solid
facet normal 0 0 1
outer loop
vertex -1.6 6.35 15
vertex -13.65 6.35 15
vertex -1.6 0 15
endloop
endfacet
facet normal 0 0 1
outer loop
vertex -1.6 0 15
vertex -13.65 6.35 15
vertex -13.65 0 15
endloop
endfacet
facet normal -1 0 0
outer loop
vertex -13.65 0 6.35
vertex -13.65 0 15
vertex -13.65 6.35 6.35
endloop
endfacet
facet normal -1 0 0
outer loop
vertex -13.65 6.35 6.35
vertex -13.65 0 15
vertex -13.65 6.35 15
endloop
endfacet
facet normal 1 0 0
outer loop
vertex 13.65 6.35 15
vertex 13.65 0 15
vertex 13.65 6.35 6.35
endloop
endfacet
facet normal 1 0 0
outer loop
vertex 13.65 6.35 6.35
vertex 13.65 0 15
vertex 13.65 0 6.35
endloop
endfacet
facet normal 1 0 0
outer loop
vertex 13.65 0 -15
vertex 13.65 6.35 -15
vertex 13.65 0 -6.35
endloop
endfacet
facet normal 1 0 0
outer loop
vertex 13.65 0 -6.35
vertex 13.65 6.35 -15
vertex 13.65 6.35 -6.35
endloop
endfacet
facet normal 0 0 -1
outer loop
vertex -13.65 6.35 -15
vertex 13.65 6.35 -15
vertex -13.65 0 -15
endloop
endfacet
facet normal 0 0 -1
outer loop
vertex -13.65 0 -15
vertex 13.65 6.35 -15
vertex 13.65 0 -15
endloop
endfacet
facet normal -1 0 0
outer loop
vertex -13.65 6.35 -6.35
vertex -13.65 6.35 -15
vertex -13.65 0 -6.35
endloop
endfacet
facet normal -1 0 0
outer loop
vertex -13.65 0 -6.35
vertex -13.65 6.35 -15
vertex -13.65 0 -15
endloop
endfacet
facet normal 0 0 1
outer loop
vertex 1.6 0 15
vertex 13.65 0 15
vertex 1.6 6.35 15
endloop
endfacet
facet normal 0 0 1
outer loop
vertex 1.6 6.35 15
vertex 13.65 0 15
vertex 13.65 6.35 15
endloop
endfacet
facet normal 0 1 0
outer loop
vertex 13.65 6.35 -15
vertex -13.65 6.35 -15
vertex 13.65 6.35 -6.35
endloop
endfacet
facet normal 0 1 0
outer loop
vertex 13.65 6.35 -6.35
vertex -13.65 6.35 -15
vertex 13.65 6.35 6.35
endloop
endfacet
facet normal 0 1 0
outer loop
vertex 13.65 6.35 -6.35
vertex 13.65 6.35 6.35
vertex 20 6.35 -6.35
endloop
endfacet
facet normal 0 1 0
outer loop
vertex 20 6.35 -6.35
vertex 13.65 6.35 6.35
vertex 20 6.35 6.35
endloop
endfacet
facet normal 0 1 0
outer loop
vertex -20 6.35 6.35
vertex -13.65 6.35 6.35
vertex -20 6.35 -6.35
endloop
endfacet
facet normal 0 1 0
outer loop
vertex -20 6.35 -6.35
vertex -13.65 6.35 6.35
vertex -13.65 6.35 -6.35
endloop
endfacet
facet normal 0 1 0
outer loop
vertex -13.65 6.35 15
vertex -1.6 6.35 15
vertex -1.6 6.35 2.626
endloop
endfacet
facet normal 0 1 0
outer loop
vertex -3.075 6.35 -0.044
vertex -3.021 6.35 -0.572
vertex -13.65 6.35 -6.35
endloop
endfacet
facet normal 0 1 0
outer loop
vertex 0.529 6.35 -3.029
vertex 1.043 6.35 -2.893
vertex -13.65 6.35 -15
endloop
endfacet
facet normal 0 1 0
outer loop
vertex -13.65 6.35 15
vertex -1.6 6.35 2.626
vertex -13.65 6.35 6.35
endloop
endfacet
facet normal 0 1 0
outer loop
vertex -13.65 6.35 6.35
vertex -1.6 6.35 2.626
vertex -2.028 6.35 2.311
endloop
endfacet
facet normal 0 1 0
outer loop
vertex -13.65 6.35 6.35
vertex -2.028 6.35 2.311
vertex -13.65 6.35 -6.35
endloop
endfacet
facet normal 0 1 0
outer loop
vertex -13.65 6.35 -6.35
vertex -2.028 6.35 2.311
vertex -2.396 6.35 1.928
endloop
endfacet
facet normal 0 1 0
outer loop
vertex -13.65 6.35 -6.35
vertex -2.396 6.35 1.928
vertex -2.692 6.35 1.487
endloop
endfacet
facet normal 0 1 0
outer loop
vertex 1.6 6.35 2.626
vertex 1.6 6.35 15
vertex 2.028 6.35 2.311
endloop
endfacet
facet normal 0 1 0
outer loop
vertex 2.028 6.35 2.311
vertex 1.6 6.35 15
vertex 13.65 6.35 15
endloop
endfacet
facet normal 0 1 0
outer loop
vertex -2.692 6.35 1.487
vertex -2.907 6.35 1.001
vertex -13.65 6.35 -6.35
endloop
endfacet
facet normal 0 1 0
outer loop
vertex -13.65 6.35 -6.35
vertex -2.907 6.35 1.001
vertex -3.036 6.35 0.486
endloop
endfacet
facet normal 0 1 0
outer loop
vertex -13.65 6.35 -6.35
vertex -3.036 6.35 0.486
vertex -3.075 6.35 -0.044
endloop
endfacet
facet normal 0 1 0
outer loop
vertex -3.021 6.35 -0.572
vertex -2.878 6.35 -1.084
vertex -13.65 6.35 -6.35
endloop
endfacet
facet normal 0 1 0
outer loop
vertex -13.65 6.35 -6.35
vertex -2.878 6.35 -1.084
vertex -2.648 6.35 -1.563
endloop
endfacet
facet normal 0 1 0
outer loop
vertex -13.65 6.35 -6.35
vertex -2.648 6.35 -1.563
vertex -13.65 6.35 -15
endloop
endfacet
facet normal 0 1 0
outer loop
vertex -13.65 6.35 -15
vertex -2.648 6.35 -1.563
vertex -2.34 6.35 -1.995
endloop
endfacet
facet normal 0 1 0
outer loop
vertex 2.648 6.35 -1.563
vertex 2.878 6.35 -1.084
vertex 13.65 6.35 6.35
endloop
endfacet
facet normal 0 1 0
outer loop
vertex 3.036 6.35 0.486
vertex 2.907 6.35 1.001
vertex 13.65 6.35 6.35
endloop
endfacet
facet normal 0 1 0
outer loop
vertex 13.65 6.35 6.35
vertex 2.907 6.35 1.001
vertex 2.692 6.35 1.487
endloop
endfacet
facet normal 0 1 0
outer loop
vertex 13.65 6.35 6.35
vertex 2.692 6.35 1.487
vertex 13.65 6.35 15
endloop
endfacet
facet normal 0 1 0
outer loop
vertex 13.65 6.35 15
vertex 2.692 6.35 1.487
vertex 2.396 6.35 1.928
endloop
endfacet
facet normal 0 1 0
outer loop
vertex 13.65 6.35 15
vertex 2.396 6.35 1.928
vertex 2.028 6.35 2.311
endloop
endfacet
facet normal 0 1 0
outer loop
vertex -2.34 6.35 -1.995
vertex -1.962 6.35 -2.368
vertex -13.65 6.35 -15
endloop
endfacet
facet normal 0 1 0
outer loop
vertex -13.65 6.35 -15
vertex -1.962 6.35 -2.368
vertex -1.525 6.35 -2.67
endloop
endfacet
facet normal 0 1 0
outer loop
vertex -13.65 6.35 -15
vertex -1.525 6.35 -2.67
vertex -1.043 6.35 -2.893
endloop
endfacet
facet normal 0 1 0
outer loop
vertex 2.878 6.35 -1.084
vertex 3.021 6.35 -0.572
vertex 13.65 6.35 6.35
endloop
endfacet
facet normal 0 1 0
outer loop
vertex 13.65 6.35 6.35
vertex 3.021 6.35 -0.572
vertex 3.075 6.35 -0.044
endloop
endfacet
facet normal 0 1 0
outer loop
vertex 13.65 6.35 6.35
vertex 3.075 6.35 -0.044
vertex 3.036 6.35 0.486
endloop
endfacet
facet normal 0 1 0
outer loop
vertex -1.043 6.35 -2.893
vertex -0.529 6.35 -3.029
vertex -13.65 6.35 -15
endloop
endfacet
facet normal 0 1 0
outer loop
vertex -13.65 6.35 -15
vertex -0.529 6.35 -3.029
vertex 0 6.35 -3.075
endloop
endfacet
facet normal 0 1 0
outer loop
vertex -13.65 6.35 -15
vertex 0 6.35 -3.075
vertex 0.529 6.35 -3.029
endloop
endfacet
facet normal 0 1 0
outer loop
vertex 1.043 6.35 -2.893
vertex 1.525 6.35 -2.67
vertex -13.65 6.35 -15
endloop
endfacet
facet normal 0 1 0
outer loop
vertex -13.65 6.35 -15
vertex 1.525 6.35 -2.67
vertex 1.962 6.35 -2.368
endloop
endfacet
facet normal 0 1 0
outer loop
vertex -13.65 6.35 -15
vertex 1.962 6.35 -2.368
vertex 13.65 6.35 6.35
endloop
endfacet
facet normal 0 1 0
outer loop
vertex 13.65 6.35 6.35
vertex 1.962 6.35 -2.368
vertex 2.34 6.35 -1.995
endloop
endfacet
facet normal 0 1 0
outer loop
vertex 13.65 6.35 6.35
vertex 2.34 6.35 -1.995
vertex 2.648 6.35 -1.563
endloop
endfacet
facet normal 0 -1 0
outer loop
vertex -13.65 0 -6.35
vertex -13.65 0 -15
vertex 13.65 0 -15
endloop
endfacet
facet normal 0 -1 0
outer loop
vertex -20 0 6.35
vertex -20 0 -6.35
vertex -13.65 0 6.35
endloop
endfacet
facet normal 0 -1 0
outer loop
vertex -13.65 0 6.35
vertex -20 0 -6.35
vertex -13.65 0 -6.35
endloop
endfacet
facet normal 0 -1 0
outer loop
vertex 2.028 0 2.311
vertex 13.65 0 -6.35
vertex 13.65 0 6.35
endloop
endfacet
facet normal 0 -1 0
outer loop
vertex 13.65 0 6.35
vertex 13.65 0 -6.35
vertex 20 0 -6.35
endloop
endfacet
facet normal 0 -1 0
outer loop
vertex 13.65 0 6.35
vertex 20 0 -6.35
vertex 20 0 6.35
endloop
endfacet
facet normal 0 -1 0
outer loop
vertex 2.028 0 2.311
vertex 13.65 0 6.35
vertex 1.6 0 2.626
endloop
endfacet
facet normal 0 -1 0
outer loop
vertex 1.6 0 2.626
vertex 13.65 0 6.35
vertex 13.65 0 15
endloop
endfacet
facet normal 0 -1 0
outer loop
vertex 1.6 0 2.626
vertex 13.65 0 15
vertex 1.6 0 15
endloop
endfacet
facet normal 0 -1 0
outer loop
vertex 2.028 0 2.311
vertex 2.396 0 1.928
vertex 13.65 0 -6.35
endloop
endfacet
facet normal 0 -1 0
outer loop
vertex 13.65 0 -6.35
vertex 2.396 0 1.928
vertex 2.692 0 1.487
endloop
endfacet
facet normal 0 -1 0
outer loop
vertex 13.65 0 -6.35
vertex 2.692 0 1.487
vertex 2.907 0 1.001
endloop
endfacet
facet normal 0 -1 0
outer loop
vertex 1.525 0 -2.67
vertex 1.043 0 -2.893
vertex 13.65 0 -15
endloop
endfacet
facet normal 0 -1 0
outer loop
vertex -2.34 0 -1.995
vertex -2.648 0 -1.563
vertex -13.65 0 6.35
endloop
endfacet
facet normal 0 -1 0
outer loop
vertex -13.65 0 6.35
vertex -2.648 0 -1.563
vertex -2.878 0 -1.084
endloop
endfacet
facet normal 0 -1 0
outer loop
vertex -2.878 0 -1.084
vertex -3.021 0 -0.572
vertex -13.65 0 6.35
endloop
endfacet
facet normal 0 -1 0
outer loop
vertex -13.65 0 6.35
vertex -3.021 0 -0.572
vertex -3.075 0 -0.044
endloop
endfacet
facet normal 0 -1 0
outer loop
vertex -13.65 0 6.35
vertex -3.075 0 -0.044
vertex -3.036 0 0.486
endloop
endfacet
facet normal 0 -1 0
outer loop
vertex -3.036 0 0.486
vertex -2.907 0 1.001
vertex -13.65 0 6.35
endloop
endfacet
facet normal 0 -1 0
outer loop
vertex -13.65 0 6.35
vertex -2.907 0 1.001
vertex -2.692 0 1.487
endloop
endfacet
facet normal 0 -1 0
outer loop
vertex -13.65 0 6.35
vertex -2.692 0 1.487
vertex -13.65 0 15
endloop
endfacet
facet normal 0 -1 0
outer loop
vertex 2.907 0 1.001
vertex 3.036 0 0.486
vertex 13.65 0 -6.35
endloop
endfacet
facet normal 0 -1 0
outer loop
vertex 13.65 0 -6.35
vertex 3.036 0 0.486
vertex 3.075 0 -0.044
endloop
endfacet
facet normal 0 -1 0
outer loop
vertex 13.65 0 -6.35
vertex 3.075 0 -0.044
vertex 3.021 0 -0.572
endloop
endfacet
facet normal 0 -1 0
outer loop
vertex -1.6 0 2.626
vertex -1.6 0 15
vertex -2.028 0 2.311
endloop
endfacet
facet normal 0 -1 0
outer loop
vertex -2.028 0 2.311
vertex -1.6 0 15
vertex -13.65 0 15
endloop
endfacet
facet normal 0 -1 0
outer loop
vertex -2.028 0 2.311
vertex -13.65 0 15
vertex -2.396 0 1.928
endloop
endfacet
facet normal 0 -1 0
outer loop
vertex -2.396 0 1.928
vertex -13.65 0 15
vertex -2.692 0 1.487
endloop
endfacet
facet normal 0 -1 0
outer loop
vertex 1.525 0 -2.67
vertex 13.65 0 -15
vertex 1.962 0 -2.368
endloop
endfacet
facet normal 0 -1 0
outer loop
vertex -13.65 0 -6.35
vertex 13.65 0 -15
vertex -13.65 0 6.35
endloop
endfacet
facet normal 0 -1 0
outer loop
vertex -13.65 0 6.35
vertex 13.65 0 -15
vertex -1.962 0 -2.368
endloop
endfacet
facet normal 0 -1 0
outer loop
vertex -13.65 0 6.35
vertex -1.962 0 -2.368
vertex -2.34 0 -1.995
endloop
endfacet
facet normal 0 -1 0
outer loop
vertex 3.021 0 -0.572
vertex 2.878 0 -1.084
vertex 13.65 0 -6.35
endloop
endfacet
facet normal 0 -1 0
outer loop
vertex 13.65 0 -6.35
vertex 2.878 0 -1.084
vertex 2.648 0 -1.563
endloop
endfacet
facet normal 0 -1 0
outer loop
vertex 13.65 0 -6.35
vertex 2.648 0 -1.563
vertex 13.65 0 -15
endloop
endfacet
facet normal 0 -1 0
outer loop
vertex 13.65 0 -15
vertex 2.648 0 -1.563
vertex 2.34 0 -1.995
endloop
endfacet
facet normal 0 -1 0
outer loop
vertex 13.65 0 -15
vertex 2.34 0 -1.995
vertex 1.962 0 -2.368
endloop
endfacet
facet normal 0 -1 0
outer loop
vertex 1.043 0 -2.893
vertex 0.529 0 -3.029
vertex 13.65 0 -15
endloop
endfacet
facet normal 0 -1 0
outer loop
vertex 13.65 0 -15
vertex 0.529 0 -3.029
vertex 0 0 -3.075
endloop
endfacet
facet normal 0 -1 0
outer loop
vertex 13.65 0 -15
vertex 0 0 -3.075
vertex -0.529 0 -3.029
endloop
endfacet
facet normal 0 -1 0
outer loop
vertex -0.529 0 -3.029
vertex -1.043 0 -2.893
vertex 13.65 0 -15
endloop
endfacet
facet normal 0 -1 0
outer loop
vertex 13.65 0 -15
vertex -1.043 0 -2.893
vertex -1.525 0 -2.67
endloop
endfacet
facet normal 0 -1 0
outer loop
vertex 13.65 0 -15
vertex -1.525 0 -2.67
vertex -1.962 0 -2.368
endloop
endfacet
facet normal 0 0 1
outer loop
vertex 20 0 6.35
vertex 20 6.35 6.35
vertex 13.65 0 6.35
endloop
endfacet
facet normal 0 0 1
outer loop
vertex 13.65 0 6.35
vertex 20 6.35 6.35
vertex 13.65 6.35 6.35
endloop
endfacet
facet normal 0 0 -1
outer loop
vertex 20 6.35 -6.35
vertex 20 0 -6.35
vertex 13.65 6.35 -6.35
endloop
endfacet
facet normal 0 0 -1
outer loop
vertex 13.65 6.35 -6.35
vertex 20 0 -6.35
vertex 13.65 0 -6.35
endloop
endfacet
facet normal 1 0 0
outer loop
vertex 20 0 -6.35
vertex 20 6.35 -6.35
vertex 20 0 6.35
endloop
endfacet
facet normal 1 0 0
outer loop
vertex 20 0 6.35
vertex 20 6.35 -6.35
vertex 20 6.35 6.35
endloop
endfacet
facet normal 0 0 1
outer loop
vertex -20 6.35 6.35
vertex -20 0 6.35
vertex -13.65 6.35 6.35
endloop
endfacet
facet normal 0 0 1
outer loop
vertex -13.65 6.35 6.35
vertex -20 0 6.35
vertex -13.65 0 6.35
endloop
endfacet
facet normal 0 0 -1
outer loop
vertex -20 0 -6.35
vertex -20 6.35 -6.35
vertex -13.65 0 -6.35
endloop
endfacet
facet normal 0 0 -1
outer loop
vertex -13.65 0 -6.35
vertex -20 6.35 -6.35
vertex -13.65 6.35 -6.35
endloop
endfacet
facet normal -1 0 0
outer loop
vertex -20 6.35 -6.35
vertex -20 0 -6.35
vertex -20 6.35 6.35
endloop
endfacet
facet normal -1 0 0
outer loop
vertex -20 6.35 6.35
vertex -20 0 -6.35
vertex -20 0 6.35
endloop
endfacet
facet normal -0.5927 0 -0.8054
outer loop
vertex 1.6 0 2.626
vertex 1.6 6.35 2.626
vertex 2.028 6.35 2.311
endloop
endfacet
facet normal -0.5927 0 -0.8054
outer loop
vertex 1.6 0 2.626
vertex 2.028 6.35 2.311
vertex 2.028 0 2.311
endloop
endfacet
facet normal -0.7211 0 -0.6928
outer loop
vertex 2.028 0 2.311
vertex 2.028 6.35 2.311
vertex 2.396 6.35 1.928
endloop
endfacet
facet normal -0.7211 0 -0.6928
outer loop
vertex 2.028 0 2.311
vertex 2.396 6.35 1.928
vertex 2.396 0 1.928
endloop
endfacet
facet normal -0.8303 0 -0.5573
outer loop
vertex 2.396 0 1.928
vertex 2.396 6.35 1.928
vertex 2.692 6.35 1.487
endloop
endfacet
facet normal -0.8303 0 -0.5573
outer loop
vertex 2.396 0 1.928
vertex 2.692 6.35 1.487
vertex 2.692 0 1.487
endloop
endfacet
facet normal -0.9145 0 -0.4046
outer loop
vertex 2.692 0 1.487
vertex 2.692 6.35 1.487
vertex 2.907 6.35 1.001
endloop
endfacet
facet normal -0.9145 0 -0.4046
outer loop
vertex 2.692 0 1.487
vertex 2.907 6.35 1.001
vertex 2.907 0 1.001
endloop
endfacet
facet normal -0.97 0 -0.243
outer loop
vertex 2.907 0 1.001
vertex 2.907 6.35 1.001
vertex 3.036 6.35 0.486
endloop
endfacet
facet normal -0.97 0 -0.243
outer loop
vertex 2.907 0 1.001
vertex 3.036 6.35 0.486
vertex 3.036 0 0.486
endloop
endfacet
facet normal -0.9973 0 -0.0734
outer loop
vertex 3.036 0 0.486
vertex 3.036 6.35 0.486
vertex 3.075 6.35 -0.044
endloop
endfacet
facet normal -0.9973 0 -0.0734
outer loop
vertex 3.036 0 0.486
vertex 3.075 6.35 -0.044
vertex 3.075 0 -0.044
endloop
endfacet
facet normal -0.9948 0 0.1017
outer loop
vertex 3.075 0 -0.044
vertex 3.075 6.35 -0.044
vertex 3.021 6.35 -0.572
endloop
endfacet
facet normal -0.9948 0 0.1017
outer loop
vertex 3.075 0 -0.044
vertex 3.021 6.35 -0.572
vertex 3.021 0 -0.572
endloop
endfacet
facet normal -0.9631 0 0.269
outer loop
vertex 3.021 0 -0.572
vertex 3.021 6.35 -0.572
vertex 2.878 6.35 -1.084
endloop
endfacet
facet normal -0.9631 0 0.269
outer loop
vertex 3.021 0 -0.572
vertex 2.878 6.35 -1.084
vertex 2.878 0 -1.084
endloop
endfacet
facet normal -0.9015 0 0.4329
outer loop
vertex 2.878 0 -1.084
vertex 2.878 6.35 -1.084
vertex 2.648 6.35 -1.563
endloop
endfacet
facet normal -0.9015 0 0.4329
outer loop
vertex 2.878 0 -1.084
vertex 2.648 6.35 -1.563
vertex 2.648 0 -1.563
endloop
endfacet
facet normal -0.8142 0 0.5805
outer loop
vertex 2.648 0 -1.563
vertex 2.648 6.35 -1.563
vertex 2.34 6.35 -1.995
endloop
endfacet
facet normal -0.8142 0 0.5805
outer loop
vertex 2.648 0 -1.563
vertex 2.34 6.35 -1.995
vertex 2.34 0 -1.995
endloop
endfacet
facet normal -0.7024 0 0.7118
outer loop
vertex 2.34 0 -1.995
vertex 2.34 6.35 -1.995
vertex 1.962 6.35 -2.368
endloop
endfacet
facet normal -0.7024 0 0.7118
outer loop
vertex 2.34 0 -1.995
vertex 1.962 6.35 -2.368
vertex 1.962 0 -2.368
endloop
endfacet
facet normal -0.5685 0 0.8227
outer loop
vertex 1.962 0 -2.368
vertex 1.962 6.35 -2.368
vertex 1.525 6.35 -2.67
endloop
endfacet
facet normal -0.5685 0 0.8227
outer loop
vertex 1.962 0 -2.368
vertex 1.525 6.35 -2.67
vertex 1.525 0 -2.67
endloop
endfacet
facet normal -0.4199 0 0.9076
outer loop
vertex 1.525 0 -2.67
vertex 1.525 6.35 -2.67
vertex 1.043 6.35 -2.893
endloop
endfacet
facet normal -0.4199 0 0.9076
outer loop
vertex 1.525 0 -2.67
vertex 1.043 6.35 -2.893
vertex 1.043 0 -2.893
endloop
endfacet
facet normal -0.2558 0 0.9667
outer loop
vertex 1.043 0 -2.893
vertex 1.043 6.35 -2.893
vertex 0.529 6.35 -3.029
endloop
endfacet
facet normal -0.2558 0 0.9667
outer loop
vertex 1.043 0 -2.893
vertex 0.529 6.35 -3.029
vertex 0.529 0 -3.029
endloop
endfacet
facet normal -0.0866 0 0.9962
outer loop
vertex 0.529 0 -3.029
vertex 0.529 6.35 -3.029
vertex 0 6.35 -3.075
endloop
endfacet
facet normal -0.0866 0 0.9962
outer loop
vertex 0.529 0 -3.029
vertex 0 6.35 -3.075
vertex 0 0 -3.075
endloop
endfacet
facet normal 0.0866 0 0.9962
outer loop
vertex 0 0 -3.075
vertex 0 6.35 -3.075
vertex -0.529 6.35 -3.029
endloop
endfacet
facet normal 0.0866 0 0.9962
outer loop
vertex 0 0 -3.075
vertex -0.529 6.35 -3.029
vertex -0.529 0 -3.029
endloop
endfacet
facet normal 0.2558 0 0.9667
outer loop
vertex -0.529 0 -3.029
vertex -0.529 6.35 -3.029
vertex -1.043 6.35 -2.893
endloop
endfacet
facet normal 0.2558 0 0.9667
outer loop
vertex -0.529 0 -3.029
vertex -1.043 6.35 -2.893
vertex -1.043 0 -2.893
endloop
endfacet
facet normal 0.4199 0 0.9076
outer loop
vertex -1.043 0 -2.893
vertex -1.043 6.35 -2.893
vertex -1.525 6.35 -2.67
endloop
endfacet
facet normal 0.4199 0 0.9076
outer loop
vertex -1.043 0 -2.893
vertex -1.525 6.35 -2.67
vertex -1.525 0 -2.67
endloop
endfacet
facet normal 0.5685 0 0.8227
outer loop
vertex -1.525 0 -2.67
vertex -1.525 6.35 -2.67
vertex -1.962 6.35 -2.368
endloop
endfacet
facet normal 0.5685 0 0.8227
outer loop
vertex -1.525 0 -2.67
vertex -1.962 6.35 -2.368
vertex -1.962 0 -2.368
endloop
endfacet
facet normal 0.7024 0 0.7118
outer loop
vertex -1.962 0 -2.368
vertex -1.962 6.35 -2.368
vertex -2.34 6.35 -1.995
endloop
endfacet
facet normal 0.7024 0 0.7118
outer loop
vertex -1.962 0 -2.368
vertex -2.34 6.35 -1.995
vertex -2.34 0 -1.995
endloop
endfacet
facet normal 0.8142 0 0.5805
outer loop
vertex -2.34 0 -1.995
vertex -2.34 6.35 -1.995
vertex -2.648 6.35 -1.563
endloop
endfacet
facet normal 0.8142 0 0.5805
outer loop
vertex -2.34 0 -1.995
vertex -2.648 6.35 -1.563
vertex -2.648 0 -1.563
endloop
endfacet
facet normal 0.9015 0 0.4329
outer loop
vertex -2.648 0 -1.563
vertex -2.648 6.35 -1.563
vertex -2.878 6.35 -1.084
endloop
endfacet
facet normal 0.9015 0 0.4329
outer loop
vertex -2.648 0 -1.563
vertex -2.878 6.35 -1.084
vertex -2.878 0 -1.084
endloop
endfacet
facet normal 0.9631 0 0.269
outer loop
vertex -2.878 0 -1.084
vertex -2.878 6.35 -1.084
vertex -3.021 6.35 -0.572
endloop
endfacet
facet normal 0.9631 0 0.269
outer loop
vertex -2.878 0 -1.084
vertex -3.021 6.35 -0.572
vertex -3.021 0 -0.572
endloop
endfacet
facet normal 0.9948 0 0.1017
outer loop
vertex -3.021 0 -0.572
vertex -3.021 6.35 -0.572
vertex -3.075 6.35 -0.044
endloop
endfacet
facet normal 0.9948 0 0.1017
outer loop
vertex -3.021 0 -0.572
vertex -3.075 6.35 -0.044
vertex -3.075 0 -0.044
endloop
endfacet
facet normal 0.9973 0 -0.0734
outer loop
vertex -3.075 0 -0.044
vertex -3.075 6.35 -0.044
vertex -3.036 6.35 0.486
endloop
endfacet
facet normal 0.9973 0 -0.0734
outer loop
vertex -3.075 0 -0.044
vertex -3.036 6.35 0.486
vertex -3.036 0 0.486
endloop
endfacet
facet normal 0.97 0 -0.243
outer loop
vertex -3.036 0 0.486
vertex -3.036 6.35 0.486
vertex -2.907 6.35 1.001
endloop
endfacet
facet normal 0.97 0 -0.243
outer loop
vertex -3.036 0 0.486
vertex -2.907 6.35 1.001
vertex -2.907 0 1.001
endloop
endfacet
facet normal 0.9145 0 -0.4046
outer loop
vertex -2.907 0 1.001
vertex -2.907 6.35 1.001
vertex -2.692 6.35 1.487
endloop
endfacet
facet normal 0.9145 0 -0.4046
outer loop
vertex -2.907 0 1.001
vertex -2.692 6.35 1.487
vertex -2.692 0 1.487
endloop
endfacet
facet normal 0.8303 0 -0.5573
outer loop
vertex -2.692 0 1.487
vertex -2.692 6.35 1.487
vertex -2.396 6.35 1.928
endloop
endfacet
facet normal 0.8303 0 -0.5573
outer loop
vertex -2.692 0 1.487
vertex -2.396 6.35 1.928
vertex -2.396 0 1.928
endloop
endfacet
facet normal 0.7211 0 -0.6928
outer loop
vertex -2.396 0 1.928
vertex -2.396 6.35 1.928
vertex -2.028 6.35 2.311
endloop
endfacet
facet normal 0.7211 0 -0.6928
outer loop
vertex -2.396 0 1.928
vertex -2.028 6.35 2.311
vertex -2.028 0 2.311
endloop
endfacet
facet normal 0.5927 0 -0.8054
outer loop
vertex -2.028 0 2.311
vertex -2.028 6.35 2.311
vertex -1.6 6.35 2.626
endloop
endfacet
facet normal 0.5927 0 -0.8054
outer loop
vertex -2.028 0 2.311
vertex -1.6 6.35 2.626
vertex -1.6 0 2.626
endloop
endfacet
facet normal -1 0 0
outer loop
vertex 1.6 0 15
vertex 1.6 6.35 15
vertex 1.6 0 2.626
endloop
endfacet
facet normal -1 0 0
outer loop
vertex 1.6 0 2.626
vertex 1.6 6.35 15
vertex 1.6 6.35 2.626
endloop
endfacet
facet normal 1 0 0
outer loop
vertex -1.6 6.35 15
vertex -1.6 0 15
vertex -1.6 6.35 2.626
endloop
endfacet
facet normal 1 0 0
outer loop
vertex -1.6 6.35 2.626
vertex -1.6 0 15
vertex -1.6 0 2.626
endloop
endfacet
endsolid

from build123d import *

# Parameters (mm, degrees)
SKETCH2_W           = 27.3
SKETCH2_H           = 30
BOSS_EXTRUDE1_DEPTH = 6.35
SKETCH3_W           = 12.7
SKETCH3_H           = 6.35
BOSS_EXTRUDE2_DEPTH = 6.35
SKETCH4_R           = 3.075
CUT_EXTRUDE1_DEPTH  = 7.35
CUT_EXTRUDE2_REACH  = 32
SKETCH5_W           = 3.2
SKETCH5_H           = 6.35


with BuildPart() as part:
    # Sketch2 → Boss-Extrude1 (new body)
    with BuildSketch(Plane(origin=(0, 0, 0), x_dir=(1, 0, 0), z_dir=(0, 1, 0))):
        Rectangle(SKETCH2_W, SKETCH2_H)
    extrude(amount=BOSS_EXTRUDE1_DEPTH)

    # Sketch3 → Boss-Extrude2 (add)
    with BuildSketch(Plane(origin=(13.65, 0, 0), x_dir=(0, 0, -1), z_dir=(1, 0, 0))):
        with Locations((0, 3.175)):
            Rectangle(SKETCH3_W, SKETCH3_H)
    boss_extrude2 = extrude(amount=BOSS_EXTRUDE2_DEPTH)

    # Mirror1: Boss-Extrude2 across plane
    add(boss_extrude2.mirror(Plane(origin=(0, 0, 0), x_dir=(0, 0, 1), z_dir=(1, 0, 0))))

    # Sketch4 → Cut-Extrude1 (cut, through all)
    with BuildSketch(Plane(origin=(0, 6.35, 0), x_dir=(1, 0, 0), z_dir=(0, 1, 0))):
        Circle(SKETCH4_R)
    extrude(amount=-CUT_EXTRUDE1_DEPTH, mode=Mode.SUBTRACT)

    # Sketch5 → Cut-Extrude2 (cut, up to next)
    with BuildSketch(Plane.XY.offset(15), mode=Mode.PRIVATE) as cut_extrude2_sk1:
        with Locations((0, 3.175)):
            Rectangle(SKETCH5_W, SKETCH5_H)
    cut_extrude2_tool1 = extrude(cut_extrude2_sk1.sketch, amount=-CUT_EXTRUDE2_REACH, mode=Mode.PRIVATE) & part.part
    add(cut_extrude2_tool1.solids().sort_by_distance((0, 3.175, 15))[0], mode=Mode.SUBTRACT)


solid = part.part
